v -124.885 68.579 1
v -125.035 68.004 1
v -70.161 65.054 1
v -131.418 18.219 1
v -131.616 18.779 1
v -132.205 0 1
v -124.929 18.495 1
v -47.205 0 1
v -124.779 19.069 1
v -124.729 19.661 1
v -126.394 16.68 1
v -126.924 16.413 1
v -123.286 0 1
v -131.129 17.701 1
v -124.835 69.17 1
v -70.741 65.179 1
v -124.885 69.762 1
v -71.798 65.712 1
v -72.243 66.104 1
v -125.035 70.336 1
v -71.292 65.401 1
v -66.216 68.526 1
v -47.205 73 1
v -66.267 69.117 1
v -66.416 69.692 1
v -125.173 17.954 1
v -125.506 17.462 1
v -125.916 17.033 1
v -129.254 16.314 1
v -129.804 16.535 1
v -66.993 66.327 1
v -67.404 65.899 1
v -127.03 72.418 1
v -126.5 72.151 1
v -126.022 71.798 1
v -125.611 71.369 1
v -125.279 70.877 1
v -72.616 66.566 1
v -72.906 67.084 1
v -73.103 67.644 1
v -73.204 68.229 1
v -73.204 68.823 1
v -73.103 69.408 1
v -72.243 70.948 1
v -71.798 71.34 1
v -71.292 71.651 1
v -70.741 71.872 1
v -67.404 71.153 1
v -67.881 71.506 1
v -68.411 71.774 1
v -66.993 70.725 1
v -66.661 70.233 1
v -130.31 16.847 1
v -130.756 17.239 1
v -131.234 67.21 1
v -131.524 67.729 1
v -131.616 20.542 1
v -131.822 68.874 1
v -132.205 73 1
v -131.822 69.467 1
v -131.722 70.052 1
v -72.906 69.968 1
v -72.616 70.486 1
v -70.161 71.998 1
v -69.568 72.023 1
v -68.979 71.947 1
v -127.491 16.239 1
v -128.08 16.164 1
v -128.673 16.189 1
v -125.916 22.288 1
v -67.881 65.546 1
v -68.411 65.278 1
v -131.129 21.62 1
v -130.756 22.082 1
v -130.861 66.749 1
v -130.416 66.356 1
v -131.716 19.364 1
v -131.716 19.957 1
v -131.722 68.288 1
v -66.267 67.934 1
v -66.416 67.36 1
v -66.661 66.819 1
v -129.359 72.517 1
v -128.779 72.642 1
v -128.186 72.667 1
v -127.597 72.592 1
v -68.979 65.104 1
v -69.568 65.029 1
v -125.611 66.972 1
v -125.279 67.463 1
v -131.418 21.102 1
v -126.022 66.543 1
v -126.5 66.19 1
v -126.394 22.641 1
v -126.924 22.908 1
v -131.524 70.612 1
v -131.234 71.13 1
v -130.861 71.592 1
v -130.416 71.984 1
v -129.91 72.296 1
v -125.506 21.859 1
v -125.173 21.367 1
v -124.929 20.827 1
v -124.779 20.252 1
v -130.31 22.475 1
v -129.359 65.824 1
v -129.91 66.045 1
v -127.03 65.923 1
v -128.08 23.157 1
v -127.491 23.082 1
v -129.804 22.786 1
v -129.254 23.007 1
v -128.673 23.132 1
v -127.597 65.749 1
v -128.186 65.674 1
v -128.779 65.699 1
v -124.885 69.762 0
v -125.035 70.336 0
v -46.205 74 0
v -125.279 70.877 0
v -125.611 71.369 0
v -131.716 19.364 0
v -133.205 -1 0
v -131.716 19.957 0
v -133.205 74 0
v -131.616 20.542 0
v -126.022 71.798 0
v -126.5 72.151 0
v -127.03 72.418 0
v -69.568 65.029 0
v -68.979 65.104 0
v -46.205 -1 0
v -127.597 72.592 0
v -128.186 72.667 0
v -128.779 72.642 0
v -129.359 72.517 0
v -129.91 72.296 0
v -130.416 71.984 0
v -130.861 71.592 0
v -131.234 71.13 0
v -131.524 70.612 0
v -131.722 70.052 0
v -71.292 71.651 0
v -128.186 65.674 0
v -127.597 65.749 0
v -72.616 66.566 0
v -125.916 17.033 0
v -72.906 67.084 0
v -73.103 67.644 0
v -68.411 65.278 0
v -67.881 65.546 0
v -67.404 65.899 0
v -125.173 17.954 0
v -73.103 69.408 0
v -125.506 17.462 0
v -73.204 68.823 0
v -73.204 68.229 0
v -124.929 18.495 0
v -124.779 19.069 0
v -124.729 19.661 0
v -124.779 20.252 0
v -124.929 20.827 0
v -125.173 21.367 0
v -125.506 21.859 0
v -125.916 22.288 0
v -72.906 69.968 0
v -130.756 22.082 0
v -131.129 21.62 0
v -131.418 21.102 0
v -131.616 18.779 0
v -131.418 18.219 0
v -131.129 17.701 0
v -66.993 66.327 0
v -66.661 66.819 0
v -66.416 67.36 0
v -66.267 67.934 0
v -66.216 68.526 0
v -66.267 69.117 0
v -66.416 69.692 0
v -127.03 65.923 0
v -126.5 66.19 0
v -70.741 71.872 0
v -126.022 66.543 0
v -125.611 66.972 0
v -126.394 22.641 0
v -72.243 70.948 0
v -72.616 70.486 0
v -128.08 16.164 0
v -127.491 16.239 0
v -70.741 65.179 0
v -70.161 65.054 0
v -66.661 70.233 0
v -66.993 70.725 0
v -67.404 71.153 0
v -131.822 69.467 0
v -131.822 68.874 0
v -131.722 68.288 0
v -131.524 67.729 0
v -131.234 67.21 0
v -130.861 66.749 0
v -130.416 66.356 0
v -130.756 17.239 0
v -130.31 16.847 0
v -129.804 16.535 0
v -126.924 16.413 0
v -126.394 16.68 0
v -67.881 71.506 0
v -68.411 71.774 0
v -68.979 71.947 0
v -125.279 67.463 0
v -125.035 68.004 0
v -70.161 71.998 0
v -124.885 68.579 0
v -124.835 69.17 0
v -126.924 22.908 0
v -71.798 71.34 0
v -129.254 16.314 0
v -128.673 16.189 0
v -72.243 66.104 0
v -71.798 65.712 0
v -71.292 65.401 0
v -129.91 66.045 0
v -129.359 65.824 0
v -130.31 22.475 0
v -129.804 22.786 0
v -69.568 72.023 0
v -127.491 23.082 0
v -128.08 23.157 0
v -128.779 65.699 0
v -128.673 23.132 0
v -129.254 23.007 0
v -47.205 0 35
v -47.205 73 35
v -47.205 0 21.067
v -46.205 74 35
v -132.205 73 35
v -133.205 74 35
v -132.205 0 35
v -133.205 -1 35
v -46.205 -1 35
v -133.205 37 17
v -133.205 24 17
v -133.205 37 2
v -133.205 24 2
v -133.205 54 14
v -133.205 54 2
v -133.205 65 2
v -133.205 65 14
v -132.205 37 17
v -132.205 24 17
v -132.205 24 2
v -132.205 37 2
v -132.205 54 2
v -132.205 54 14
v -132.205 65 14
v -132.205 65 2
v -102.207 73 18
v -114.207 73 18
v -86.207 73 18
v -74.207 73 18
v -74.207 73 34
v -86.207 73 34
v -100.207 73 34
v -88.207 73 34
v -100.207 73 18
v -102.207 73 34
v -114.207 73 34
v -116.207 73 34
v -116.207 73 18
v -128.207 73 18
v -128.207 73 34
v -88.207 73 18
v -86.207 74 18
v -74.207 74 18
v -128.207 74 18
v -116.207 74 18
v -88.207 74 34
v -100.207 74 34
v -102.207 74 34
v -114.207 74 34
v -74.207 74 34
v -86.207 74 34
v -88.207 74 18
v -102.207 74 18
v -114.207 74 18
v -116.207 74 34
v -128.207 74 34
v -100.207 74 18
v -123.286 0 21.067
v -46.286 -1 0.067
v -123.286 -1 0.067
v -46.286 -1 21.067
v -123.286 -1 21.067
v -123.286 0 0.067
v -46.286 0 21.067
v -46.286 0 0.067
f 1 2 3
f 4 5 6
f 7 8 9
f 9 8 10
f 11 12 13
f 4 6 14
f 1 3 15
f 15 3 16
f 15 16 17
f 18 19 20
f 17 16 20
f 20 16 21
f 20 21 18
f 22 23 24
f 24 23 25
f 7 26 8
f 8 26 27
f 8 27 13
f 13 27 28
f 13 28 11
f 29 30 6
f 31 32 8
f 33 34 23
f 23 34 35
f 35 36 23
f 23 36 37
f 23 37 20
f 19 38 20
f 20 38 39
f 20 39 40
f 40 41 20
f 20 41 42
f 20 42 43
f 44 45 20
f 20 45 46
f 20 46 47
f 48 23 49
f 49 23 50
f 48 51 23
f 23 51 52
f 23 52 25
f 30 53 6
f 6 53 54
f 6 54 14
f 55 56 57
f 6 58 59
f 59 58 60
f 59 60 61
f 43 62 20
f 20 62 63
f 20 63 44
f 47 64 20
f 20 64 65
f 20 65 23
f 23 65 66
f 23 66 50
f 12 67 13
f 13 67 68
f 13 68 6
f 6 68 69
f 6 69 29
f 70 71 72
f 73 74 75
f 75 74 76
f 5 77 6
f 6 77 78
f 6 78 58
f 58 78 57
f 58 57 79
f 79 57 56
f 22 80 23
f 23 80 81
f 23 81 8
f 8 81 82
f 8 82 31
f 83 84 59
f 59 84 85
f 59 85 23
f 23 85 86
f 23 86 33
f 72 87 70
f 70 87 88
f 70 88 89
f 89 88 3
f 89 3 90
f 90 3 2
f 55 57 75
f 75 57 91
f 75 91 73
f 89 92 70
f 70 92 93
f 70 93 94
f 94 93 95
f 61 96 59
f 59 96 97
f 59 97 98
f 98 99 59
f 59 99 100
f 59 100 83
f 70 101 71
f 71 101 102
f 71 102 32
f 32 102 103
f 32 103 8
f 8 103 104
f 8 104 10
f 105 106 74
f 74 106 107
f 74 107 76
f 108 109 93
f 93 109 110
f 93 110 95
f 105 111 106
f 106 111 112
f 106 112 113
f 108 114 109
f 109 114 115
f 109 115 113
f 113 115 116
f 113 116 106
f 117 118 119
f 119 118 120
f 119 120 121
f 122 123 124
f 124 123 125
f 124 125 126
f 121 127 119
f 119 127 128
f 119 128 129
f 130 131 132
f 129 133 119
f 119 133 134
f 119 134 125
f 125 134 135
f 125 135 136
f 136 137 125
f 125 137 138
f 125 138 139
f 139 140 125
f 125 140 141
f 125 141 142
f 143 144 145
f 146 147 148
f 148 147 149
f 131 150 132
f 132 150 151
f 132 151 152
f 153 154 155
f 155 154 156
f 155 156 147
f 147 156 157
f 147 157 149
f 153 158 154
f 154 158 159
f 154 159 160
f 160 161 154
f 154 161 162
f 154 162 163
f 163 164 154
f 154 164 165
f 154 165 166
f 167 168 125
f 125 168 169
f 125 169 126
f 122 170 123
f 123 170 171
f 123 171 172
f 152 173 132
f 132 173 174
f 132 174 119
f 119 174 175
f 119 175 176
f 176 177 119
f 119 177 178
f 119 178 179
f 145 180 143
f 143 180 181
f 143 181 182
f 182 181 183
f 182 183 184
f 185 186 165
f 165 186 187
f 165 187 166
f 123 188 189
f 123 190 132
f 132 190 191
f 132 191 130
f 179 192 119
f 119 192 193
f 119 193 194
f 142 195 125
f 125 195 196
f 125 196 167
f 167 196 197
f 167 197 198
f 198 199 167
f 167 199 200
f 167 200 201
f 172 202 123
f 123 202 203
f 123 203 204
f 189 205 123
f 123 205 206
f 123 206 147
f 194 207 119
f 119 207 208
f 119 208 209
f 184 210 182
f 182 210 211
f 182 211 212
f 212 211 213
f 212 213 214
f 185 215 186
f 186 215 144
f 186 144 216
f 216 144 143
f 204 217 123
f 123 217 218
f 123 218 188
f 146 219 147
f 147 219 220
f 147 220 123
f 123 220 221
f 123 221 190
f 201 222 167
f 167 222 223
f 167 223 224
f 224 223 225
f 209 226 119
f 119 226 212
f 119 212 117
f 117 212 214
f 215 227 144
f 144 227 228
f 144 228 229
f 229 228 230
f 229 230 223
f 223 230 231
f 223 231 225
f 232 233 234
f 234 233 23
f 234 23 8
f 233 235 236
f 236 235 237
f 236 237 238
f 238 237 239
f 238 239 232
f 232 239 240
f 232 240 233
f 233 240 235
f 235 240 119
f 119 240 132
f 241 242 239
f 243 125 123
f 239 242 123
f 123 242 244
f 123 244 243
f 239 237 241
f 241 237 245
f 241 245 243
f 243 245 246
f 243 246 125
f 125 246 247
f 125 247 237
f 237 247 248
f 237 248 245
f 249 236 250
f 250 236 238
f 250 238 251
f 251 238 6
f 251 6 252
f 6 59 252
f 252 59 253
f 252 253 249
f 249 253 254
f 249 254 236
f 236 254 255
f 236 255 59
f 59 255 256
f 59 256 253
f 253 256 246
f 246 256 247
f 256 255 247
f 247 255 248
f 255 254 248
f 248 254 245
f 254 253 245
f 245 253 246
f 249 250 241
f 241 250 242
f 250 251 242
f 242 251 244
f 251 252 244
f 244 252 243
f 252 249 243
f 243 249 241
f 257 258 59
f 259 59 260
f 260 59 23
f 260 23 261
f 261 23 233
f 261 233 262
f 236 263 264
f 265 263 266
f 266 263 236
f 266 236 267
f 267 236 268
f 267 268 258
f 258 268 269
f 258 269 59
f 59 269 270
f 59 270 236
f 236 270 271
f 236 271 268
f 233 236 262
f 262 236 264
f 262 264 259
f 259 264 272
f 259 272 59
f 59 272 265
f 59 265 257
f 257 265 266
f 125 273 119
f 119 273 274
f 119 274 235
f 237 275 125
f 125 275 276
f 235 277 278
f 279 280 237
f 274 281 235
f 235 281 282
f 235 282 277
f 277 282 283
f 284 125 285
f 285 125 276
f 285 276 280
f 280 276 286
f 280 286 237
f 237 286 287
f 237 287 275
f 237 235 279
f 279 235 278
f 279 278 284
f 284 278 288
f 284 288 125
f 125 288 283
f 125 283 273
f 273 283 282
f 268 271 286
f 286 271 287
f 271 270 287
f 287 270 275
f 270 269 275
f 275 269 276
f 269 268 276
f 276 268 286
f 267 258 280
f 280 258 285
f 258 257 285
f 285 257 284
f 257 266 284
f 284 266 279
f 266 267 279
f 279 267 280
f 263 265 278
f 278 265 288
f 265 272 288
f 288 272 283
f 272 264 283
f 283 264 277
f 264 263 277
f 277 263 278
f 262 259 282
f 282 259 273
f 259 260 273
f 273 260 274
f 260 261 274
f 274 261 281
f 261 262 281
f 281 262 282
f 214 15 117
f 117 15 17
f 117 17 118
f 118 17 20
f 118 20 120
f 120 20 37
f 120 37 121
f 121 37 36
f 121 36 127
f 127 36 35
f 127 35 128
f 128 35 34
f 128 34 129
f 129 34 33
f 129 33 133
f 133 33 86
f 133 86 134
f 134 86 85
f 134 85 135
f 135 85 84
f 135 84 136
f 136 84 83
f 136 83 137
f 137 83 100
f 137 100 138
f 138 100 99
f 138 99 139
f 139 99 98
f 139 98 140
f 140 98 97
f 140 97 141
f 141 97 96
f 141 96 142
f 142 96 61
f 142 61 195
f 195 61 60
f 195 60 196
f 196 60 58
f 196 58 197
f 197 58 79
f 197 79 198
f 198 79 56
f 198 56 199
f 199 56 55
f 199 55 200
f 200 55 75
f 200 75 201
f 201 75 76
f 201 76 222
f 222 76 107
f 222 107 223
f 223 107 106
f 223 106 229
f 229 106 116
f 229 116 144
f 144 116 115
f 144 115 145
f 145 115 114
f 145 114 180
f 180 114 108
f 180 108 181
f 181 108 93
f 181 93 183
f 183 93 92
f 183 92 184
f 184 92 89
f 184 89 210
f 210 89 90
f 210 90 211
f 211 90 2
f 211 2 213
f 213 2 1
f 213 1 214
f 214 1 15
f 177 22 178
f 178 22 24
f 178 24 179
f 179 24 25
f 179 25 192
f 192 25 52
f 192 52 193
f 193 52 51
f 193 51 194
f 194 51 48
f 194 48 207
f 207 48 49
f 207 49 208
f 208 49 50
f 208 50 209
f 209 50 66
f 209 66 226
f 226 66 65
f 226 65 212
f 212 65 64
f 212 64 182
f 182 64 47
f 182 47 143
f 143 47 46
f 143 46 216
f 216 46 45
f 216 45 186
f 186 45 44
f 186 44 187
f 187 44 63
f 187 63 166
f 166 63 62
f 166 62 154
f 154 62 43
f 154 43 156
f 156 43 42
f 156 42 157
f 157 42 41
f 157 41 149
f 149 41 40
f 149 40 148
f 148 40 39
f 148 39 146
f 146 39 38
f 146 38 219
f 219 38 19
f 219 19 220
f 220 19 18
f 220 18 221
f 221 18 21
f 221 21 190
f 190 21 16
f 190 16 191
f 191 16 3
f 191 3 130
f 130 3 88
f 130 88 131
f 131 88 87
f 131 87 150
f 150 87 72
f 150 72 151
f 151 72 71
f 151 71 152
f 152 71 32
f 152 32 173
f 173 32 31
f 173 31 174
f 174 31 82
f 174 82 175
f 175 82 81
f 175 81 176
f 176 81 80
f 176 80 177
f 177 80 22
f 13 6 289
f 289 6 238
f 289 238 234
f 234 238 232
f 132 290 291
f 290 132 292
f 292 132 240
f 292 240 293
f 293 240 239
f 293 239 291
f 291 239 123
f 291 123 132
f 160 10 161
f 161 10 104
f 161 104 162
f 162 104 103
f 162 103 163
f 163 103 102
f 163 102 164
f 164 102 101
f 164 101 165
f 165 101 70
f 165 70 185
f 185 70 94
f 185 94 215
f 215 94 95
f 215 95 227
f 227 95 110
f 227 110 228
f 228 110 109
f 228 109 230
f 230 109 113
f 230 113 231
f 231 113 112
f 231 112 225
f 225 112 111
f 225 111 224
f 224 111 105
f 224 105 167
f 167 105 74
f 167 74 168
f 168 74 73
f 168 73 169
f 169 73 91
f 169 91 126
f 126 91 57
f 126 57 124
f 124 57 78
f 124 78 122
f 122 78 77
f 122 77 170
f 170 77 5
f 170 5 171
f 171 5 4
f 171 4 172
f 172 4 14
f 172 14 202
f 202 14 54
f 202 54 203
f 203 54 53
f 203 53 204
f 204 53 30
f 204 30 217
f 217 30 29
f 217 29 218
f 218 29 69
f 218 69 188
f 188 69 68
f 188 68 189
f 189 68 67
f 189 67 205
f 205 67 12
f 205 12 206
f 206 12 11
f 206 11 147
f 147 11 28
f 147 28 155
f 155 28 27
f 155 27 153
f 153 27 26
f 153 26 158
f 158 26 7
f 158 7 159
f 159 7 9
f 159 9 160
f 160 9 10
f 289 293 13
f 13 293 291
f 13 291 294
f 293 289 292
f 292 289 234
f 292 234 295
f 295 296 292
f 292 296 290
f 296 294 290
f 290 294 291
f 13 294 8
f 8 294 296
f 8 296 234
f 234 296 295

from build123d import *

# Parameters (mm, degrees)
ESQUISSE1_W              = 85
ESQUISSE1_H              = 73
BOSS_EXTRU_2_DEPTH       = 1
ESQUISSE6_W              = 35
ESQUISSE6_H              = 73
BOSS_EXTRU_4_DEPTH       = 1
ESQUISSE8_W              = 35
ESQUISSE8_H              = 73
BOSS_EXTRU_6_DEPTH       = 1
ESQUISSE10_W             = 12
ESQUISSE10_H             = 11
ENL_V_MAT_EXTRU_1_DEPTH  = 1
ESQUISSE11_W             = 15
ESQUISSE11_H             = 13
ENL_V_MAT_EXTRU_2_DEPTH  = 1
ESQUISSE13_W             = 87
ESQUISSE13_H             = 35
BOSS_EXTRU_8_DEPTH       = 1
ESQUISSE14_W             = 12
ESQUISSE14_H             = 16
ENL_V_MAT_EXTRU_3_DEPTH  = 1
ESQUISSE18_W             = 12
ESQUISSE18_H             = 16
ENL_V_MAT_EXTRU_5_DEPTH  = 1
ESQUISSE20_W             = 12
ESQUISSE20_H             = 16
ENL_V_MAT_EXTRU_6_DEPTH  = 1
ESQUISSE21_W             = 12
ESQUISSE21_H             = 16
ENL_V_MAT_EXTRU_7_DEPTH  = 1
ESQUISSE22_R             = 3.5
ENL_V_MAT_EXTRU_8_DEPTH  = 1
ESQUISSE24_R             = 3.5
ENL_V_MAT_EXTRU_10_DEPTH = 1
ESQUISSE25_W             = 87
ESQUISSE25_H             = 35
BOSS_EXTRU_11_DEPTH      = 1
ESQUISSE23_R             = 3.5
ENL_V_MAT_EXTRU_12_DEPTH = 1
ESQUISSE26_W             = 77
ESQUISSE26_H             = 21
ENL_V_MAT_EXTRU_13_DEPTH = 1


with BuildPart() as part:
    # Esquisse1 → Boss.-Extru.2 (new body)
    with BuildSketch(Plane.XY):
        with Locations((-89.704998798, 36.5)):
            Rectangle(ESQUISSE1_W, ESQUISSE1_H)
    extrude(amount=BOSS_EXTRU_2_DEPTH)

    # Esquisse6 → Boss.-Extru.4 (add)
    with BuildSketch(Plane(origin=(-47.204998798, 0, 0), x_dir=(0, 0, -1), z_dir=(1, 0, 0))):
        with Locations((-17.5, 36.5)):
            Rectangle(ESQUISSE6_W, ESQUISSE6_H)
    extrude(amount=BOSS_EXTRU_4_DEPTH)

    # Esquisse8 → Boss.-Extru.6 (add)
    with BuildSketch(Plane.ZY.offset(132.204998798)):
        with Locations((17.5, 36.5)):
            Rectangle(ESQUISSE8_W, ESQUISSE8_H)
    extrude(amount=BOSS_EXTRU_6_DEPTH)

    # Esquisse10 → Enlèv. mat.-Extru.1 (cut)
    with BuildSketch(Plane.ZY.offset(133.204998798)):
        with Locations((8, 59.5)):
            Rectangle(ESQUISSE10_W, ESQUISSE10_H)
    extrude(amount=-ENL_V_MAT_EXTRU_1_DEPTH, mode=Mode.SUBTRACT)

    # Esquisse11 → Enlèv. mat.-Extru.2 (cut)
    with BuildSketch(Plane.ZY.offset(133.204998798)):
        with Locations((9.5, 30.5)):
            Rectangle(ESQUISSE11_W, ESQUISSE11_H)
    extrude(amount=-ENL_V_MAT_EXTRU_2_DEPTH, mode=Mode.SUBTRACT)

    # Esquisse13 → Boss.-Extru.8 (add)
    with BuildSketch(Plane(origin=(0, 73, 0), x_dir=(1, 0, 0), z_dir=(0, 1, 0))):
        with Locations((-89.704998798, -17.5)):
            Rectangle(ESQUISSE13_W, ESQUISSE13_H)
    extrude(amount=BOSS_EXTRU_8_DEPTH)

    # Esquisse14 → Enlèv. mat.-Extru.3 (cut)
    with BuildSketch(Plane(origin=(0, 74, 0), x_dir=(1, 0, 0), z_dir=(0, 1, 0))):
        with Locations((-122.207040337, -26)):
            Rectangle(ESQUISSE14_W, ESQUISSE14_H)
    extrude(amount=-ENL_V_MAT_EXTRU_3_DEPTH, mode=Mode.SUBTRACT)

    # Esquisse18 → Enlèv. mat.-Extru.5 (cut)
    with BuildSketch(Plane(origin=(0, 74, 0), x_dir=(1, 0, 0), z_dir=(0, 1, 0))):
        with Locations((-108.207040337, -26)):
            Rectangle(ESQUISSE18_W, ESQUISSE18_H)
    extrude(amount=-ENL_V_MAT_EXTRU_5_DEPTH, mode=Mode.SUBTRACT)

    # Esquisse20 → Enlèv. mat.-Extru.6 (cut)
    with BuildSketch(Plane(origin=(0, 74, 0), x_dir=(1, 0, 0), z_dir=(0, 1, 0))):
        with Locations((-94.207040337, -26)):
            Rectangle(ESQUISSE20_W, ESQUISSE20_H)
    extrude(amount=-ENL_V_MAT_EXTRU_6_DEPTH, mode=Mode.SUBTRACT)

    # Esquisse21 → Enlèv. mat.-Extru.7 (cut)
    with BuildSketch(Plane(origin=(0, 74, 0), x_dir=(1, 0, 0), z_dir=(0, 1, 0))):
        with Locations((-80.207040337, -26)):
            Rectangle(ESQUISSE21_W, ESQUISSE21_H)
    extrude(amount=-ENL_V_MAT_EXTRU_7_DEPTH, mode=Mode.SUBTRACT)

    # Esquisse22 → Enlèv. mat.-Extru.8 (cut)
    with BuildSketch(Plane.XY.offset(1)):
        with Locations((-128.334603856, 69.17039525)):
            Circle(ESQUISSE22_R)
    extrude(amount=-ENL_V_MAT_EXTRU_8_DEPTH, mode=Mode.SUBTRACT)

    # Esquisse24 → Enlèv. mat.-Extru.10 (cut)
    with BuildSketch(Plane.XY.offset(1)):
        with Locations((-69.71638406, 68.525894508)):
            Circle(ESQUISSE24_R)
    extrude(amount=-ENL_V_MAT_EXTRU_10_DEPTH, mode=Mode.SUBTRACT)

    # Esquisse25 → Boss.-Extru.11 (add)
    with BuildSketch(Plane.XZ):
        with Locations((-89.704998798, 17.5)):
            Rectangle(ESQUISSE25_W, ESQUISSE25_H)
    extrude(amount=BOSS_EXTRU_11_DEPTH)

    # Esquisse23 → Enlèv. mat.-Extru.12 (cut)
    with BuildSketch(Plane.XY.offset(1)):
        with Locations((-128.228777758, 19.66052326)):
            Circle(ESQUISSE23_R)
    extrude(amount=-ENL_V_MAT_EXTRU_12_DEPTH, mode=Mode.SUBTRACT)

    # Esquisse26 → Enlèv. mat.-Extru.13 (cut)
    with BuildSketch(Plane.XZ.offset(1)):
        with Locations((-84.785991567, 10.567106243)):
            Rectangle(ESQUISSE26_W, ESQUISSE26_H)
    extrude(amount=-ENL_V_MAT_EXTRU_13_DEPTH, mode=Mode.SUBTRACT)


solid = part.part
